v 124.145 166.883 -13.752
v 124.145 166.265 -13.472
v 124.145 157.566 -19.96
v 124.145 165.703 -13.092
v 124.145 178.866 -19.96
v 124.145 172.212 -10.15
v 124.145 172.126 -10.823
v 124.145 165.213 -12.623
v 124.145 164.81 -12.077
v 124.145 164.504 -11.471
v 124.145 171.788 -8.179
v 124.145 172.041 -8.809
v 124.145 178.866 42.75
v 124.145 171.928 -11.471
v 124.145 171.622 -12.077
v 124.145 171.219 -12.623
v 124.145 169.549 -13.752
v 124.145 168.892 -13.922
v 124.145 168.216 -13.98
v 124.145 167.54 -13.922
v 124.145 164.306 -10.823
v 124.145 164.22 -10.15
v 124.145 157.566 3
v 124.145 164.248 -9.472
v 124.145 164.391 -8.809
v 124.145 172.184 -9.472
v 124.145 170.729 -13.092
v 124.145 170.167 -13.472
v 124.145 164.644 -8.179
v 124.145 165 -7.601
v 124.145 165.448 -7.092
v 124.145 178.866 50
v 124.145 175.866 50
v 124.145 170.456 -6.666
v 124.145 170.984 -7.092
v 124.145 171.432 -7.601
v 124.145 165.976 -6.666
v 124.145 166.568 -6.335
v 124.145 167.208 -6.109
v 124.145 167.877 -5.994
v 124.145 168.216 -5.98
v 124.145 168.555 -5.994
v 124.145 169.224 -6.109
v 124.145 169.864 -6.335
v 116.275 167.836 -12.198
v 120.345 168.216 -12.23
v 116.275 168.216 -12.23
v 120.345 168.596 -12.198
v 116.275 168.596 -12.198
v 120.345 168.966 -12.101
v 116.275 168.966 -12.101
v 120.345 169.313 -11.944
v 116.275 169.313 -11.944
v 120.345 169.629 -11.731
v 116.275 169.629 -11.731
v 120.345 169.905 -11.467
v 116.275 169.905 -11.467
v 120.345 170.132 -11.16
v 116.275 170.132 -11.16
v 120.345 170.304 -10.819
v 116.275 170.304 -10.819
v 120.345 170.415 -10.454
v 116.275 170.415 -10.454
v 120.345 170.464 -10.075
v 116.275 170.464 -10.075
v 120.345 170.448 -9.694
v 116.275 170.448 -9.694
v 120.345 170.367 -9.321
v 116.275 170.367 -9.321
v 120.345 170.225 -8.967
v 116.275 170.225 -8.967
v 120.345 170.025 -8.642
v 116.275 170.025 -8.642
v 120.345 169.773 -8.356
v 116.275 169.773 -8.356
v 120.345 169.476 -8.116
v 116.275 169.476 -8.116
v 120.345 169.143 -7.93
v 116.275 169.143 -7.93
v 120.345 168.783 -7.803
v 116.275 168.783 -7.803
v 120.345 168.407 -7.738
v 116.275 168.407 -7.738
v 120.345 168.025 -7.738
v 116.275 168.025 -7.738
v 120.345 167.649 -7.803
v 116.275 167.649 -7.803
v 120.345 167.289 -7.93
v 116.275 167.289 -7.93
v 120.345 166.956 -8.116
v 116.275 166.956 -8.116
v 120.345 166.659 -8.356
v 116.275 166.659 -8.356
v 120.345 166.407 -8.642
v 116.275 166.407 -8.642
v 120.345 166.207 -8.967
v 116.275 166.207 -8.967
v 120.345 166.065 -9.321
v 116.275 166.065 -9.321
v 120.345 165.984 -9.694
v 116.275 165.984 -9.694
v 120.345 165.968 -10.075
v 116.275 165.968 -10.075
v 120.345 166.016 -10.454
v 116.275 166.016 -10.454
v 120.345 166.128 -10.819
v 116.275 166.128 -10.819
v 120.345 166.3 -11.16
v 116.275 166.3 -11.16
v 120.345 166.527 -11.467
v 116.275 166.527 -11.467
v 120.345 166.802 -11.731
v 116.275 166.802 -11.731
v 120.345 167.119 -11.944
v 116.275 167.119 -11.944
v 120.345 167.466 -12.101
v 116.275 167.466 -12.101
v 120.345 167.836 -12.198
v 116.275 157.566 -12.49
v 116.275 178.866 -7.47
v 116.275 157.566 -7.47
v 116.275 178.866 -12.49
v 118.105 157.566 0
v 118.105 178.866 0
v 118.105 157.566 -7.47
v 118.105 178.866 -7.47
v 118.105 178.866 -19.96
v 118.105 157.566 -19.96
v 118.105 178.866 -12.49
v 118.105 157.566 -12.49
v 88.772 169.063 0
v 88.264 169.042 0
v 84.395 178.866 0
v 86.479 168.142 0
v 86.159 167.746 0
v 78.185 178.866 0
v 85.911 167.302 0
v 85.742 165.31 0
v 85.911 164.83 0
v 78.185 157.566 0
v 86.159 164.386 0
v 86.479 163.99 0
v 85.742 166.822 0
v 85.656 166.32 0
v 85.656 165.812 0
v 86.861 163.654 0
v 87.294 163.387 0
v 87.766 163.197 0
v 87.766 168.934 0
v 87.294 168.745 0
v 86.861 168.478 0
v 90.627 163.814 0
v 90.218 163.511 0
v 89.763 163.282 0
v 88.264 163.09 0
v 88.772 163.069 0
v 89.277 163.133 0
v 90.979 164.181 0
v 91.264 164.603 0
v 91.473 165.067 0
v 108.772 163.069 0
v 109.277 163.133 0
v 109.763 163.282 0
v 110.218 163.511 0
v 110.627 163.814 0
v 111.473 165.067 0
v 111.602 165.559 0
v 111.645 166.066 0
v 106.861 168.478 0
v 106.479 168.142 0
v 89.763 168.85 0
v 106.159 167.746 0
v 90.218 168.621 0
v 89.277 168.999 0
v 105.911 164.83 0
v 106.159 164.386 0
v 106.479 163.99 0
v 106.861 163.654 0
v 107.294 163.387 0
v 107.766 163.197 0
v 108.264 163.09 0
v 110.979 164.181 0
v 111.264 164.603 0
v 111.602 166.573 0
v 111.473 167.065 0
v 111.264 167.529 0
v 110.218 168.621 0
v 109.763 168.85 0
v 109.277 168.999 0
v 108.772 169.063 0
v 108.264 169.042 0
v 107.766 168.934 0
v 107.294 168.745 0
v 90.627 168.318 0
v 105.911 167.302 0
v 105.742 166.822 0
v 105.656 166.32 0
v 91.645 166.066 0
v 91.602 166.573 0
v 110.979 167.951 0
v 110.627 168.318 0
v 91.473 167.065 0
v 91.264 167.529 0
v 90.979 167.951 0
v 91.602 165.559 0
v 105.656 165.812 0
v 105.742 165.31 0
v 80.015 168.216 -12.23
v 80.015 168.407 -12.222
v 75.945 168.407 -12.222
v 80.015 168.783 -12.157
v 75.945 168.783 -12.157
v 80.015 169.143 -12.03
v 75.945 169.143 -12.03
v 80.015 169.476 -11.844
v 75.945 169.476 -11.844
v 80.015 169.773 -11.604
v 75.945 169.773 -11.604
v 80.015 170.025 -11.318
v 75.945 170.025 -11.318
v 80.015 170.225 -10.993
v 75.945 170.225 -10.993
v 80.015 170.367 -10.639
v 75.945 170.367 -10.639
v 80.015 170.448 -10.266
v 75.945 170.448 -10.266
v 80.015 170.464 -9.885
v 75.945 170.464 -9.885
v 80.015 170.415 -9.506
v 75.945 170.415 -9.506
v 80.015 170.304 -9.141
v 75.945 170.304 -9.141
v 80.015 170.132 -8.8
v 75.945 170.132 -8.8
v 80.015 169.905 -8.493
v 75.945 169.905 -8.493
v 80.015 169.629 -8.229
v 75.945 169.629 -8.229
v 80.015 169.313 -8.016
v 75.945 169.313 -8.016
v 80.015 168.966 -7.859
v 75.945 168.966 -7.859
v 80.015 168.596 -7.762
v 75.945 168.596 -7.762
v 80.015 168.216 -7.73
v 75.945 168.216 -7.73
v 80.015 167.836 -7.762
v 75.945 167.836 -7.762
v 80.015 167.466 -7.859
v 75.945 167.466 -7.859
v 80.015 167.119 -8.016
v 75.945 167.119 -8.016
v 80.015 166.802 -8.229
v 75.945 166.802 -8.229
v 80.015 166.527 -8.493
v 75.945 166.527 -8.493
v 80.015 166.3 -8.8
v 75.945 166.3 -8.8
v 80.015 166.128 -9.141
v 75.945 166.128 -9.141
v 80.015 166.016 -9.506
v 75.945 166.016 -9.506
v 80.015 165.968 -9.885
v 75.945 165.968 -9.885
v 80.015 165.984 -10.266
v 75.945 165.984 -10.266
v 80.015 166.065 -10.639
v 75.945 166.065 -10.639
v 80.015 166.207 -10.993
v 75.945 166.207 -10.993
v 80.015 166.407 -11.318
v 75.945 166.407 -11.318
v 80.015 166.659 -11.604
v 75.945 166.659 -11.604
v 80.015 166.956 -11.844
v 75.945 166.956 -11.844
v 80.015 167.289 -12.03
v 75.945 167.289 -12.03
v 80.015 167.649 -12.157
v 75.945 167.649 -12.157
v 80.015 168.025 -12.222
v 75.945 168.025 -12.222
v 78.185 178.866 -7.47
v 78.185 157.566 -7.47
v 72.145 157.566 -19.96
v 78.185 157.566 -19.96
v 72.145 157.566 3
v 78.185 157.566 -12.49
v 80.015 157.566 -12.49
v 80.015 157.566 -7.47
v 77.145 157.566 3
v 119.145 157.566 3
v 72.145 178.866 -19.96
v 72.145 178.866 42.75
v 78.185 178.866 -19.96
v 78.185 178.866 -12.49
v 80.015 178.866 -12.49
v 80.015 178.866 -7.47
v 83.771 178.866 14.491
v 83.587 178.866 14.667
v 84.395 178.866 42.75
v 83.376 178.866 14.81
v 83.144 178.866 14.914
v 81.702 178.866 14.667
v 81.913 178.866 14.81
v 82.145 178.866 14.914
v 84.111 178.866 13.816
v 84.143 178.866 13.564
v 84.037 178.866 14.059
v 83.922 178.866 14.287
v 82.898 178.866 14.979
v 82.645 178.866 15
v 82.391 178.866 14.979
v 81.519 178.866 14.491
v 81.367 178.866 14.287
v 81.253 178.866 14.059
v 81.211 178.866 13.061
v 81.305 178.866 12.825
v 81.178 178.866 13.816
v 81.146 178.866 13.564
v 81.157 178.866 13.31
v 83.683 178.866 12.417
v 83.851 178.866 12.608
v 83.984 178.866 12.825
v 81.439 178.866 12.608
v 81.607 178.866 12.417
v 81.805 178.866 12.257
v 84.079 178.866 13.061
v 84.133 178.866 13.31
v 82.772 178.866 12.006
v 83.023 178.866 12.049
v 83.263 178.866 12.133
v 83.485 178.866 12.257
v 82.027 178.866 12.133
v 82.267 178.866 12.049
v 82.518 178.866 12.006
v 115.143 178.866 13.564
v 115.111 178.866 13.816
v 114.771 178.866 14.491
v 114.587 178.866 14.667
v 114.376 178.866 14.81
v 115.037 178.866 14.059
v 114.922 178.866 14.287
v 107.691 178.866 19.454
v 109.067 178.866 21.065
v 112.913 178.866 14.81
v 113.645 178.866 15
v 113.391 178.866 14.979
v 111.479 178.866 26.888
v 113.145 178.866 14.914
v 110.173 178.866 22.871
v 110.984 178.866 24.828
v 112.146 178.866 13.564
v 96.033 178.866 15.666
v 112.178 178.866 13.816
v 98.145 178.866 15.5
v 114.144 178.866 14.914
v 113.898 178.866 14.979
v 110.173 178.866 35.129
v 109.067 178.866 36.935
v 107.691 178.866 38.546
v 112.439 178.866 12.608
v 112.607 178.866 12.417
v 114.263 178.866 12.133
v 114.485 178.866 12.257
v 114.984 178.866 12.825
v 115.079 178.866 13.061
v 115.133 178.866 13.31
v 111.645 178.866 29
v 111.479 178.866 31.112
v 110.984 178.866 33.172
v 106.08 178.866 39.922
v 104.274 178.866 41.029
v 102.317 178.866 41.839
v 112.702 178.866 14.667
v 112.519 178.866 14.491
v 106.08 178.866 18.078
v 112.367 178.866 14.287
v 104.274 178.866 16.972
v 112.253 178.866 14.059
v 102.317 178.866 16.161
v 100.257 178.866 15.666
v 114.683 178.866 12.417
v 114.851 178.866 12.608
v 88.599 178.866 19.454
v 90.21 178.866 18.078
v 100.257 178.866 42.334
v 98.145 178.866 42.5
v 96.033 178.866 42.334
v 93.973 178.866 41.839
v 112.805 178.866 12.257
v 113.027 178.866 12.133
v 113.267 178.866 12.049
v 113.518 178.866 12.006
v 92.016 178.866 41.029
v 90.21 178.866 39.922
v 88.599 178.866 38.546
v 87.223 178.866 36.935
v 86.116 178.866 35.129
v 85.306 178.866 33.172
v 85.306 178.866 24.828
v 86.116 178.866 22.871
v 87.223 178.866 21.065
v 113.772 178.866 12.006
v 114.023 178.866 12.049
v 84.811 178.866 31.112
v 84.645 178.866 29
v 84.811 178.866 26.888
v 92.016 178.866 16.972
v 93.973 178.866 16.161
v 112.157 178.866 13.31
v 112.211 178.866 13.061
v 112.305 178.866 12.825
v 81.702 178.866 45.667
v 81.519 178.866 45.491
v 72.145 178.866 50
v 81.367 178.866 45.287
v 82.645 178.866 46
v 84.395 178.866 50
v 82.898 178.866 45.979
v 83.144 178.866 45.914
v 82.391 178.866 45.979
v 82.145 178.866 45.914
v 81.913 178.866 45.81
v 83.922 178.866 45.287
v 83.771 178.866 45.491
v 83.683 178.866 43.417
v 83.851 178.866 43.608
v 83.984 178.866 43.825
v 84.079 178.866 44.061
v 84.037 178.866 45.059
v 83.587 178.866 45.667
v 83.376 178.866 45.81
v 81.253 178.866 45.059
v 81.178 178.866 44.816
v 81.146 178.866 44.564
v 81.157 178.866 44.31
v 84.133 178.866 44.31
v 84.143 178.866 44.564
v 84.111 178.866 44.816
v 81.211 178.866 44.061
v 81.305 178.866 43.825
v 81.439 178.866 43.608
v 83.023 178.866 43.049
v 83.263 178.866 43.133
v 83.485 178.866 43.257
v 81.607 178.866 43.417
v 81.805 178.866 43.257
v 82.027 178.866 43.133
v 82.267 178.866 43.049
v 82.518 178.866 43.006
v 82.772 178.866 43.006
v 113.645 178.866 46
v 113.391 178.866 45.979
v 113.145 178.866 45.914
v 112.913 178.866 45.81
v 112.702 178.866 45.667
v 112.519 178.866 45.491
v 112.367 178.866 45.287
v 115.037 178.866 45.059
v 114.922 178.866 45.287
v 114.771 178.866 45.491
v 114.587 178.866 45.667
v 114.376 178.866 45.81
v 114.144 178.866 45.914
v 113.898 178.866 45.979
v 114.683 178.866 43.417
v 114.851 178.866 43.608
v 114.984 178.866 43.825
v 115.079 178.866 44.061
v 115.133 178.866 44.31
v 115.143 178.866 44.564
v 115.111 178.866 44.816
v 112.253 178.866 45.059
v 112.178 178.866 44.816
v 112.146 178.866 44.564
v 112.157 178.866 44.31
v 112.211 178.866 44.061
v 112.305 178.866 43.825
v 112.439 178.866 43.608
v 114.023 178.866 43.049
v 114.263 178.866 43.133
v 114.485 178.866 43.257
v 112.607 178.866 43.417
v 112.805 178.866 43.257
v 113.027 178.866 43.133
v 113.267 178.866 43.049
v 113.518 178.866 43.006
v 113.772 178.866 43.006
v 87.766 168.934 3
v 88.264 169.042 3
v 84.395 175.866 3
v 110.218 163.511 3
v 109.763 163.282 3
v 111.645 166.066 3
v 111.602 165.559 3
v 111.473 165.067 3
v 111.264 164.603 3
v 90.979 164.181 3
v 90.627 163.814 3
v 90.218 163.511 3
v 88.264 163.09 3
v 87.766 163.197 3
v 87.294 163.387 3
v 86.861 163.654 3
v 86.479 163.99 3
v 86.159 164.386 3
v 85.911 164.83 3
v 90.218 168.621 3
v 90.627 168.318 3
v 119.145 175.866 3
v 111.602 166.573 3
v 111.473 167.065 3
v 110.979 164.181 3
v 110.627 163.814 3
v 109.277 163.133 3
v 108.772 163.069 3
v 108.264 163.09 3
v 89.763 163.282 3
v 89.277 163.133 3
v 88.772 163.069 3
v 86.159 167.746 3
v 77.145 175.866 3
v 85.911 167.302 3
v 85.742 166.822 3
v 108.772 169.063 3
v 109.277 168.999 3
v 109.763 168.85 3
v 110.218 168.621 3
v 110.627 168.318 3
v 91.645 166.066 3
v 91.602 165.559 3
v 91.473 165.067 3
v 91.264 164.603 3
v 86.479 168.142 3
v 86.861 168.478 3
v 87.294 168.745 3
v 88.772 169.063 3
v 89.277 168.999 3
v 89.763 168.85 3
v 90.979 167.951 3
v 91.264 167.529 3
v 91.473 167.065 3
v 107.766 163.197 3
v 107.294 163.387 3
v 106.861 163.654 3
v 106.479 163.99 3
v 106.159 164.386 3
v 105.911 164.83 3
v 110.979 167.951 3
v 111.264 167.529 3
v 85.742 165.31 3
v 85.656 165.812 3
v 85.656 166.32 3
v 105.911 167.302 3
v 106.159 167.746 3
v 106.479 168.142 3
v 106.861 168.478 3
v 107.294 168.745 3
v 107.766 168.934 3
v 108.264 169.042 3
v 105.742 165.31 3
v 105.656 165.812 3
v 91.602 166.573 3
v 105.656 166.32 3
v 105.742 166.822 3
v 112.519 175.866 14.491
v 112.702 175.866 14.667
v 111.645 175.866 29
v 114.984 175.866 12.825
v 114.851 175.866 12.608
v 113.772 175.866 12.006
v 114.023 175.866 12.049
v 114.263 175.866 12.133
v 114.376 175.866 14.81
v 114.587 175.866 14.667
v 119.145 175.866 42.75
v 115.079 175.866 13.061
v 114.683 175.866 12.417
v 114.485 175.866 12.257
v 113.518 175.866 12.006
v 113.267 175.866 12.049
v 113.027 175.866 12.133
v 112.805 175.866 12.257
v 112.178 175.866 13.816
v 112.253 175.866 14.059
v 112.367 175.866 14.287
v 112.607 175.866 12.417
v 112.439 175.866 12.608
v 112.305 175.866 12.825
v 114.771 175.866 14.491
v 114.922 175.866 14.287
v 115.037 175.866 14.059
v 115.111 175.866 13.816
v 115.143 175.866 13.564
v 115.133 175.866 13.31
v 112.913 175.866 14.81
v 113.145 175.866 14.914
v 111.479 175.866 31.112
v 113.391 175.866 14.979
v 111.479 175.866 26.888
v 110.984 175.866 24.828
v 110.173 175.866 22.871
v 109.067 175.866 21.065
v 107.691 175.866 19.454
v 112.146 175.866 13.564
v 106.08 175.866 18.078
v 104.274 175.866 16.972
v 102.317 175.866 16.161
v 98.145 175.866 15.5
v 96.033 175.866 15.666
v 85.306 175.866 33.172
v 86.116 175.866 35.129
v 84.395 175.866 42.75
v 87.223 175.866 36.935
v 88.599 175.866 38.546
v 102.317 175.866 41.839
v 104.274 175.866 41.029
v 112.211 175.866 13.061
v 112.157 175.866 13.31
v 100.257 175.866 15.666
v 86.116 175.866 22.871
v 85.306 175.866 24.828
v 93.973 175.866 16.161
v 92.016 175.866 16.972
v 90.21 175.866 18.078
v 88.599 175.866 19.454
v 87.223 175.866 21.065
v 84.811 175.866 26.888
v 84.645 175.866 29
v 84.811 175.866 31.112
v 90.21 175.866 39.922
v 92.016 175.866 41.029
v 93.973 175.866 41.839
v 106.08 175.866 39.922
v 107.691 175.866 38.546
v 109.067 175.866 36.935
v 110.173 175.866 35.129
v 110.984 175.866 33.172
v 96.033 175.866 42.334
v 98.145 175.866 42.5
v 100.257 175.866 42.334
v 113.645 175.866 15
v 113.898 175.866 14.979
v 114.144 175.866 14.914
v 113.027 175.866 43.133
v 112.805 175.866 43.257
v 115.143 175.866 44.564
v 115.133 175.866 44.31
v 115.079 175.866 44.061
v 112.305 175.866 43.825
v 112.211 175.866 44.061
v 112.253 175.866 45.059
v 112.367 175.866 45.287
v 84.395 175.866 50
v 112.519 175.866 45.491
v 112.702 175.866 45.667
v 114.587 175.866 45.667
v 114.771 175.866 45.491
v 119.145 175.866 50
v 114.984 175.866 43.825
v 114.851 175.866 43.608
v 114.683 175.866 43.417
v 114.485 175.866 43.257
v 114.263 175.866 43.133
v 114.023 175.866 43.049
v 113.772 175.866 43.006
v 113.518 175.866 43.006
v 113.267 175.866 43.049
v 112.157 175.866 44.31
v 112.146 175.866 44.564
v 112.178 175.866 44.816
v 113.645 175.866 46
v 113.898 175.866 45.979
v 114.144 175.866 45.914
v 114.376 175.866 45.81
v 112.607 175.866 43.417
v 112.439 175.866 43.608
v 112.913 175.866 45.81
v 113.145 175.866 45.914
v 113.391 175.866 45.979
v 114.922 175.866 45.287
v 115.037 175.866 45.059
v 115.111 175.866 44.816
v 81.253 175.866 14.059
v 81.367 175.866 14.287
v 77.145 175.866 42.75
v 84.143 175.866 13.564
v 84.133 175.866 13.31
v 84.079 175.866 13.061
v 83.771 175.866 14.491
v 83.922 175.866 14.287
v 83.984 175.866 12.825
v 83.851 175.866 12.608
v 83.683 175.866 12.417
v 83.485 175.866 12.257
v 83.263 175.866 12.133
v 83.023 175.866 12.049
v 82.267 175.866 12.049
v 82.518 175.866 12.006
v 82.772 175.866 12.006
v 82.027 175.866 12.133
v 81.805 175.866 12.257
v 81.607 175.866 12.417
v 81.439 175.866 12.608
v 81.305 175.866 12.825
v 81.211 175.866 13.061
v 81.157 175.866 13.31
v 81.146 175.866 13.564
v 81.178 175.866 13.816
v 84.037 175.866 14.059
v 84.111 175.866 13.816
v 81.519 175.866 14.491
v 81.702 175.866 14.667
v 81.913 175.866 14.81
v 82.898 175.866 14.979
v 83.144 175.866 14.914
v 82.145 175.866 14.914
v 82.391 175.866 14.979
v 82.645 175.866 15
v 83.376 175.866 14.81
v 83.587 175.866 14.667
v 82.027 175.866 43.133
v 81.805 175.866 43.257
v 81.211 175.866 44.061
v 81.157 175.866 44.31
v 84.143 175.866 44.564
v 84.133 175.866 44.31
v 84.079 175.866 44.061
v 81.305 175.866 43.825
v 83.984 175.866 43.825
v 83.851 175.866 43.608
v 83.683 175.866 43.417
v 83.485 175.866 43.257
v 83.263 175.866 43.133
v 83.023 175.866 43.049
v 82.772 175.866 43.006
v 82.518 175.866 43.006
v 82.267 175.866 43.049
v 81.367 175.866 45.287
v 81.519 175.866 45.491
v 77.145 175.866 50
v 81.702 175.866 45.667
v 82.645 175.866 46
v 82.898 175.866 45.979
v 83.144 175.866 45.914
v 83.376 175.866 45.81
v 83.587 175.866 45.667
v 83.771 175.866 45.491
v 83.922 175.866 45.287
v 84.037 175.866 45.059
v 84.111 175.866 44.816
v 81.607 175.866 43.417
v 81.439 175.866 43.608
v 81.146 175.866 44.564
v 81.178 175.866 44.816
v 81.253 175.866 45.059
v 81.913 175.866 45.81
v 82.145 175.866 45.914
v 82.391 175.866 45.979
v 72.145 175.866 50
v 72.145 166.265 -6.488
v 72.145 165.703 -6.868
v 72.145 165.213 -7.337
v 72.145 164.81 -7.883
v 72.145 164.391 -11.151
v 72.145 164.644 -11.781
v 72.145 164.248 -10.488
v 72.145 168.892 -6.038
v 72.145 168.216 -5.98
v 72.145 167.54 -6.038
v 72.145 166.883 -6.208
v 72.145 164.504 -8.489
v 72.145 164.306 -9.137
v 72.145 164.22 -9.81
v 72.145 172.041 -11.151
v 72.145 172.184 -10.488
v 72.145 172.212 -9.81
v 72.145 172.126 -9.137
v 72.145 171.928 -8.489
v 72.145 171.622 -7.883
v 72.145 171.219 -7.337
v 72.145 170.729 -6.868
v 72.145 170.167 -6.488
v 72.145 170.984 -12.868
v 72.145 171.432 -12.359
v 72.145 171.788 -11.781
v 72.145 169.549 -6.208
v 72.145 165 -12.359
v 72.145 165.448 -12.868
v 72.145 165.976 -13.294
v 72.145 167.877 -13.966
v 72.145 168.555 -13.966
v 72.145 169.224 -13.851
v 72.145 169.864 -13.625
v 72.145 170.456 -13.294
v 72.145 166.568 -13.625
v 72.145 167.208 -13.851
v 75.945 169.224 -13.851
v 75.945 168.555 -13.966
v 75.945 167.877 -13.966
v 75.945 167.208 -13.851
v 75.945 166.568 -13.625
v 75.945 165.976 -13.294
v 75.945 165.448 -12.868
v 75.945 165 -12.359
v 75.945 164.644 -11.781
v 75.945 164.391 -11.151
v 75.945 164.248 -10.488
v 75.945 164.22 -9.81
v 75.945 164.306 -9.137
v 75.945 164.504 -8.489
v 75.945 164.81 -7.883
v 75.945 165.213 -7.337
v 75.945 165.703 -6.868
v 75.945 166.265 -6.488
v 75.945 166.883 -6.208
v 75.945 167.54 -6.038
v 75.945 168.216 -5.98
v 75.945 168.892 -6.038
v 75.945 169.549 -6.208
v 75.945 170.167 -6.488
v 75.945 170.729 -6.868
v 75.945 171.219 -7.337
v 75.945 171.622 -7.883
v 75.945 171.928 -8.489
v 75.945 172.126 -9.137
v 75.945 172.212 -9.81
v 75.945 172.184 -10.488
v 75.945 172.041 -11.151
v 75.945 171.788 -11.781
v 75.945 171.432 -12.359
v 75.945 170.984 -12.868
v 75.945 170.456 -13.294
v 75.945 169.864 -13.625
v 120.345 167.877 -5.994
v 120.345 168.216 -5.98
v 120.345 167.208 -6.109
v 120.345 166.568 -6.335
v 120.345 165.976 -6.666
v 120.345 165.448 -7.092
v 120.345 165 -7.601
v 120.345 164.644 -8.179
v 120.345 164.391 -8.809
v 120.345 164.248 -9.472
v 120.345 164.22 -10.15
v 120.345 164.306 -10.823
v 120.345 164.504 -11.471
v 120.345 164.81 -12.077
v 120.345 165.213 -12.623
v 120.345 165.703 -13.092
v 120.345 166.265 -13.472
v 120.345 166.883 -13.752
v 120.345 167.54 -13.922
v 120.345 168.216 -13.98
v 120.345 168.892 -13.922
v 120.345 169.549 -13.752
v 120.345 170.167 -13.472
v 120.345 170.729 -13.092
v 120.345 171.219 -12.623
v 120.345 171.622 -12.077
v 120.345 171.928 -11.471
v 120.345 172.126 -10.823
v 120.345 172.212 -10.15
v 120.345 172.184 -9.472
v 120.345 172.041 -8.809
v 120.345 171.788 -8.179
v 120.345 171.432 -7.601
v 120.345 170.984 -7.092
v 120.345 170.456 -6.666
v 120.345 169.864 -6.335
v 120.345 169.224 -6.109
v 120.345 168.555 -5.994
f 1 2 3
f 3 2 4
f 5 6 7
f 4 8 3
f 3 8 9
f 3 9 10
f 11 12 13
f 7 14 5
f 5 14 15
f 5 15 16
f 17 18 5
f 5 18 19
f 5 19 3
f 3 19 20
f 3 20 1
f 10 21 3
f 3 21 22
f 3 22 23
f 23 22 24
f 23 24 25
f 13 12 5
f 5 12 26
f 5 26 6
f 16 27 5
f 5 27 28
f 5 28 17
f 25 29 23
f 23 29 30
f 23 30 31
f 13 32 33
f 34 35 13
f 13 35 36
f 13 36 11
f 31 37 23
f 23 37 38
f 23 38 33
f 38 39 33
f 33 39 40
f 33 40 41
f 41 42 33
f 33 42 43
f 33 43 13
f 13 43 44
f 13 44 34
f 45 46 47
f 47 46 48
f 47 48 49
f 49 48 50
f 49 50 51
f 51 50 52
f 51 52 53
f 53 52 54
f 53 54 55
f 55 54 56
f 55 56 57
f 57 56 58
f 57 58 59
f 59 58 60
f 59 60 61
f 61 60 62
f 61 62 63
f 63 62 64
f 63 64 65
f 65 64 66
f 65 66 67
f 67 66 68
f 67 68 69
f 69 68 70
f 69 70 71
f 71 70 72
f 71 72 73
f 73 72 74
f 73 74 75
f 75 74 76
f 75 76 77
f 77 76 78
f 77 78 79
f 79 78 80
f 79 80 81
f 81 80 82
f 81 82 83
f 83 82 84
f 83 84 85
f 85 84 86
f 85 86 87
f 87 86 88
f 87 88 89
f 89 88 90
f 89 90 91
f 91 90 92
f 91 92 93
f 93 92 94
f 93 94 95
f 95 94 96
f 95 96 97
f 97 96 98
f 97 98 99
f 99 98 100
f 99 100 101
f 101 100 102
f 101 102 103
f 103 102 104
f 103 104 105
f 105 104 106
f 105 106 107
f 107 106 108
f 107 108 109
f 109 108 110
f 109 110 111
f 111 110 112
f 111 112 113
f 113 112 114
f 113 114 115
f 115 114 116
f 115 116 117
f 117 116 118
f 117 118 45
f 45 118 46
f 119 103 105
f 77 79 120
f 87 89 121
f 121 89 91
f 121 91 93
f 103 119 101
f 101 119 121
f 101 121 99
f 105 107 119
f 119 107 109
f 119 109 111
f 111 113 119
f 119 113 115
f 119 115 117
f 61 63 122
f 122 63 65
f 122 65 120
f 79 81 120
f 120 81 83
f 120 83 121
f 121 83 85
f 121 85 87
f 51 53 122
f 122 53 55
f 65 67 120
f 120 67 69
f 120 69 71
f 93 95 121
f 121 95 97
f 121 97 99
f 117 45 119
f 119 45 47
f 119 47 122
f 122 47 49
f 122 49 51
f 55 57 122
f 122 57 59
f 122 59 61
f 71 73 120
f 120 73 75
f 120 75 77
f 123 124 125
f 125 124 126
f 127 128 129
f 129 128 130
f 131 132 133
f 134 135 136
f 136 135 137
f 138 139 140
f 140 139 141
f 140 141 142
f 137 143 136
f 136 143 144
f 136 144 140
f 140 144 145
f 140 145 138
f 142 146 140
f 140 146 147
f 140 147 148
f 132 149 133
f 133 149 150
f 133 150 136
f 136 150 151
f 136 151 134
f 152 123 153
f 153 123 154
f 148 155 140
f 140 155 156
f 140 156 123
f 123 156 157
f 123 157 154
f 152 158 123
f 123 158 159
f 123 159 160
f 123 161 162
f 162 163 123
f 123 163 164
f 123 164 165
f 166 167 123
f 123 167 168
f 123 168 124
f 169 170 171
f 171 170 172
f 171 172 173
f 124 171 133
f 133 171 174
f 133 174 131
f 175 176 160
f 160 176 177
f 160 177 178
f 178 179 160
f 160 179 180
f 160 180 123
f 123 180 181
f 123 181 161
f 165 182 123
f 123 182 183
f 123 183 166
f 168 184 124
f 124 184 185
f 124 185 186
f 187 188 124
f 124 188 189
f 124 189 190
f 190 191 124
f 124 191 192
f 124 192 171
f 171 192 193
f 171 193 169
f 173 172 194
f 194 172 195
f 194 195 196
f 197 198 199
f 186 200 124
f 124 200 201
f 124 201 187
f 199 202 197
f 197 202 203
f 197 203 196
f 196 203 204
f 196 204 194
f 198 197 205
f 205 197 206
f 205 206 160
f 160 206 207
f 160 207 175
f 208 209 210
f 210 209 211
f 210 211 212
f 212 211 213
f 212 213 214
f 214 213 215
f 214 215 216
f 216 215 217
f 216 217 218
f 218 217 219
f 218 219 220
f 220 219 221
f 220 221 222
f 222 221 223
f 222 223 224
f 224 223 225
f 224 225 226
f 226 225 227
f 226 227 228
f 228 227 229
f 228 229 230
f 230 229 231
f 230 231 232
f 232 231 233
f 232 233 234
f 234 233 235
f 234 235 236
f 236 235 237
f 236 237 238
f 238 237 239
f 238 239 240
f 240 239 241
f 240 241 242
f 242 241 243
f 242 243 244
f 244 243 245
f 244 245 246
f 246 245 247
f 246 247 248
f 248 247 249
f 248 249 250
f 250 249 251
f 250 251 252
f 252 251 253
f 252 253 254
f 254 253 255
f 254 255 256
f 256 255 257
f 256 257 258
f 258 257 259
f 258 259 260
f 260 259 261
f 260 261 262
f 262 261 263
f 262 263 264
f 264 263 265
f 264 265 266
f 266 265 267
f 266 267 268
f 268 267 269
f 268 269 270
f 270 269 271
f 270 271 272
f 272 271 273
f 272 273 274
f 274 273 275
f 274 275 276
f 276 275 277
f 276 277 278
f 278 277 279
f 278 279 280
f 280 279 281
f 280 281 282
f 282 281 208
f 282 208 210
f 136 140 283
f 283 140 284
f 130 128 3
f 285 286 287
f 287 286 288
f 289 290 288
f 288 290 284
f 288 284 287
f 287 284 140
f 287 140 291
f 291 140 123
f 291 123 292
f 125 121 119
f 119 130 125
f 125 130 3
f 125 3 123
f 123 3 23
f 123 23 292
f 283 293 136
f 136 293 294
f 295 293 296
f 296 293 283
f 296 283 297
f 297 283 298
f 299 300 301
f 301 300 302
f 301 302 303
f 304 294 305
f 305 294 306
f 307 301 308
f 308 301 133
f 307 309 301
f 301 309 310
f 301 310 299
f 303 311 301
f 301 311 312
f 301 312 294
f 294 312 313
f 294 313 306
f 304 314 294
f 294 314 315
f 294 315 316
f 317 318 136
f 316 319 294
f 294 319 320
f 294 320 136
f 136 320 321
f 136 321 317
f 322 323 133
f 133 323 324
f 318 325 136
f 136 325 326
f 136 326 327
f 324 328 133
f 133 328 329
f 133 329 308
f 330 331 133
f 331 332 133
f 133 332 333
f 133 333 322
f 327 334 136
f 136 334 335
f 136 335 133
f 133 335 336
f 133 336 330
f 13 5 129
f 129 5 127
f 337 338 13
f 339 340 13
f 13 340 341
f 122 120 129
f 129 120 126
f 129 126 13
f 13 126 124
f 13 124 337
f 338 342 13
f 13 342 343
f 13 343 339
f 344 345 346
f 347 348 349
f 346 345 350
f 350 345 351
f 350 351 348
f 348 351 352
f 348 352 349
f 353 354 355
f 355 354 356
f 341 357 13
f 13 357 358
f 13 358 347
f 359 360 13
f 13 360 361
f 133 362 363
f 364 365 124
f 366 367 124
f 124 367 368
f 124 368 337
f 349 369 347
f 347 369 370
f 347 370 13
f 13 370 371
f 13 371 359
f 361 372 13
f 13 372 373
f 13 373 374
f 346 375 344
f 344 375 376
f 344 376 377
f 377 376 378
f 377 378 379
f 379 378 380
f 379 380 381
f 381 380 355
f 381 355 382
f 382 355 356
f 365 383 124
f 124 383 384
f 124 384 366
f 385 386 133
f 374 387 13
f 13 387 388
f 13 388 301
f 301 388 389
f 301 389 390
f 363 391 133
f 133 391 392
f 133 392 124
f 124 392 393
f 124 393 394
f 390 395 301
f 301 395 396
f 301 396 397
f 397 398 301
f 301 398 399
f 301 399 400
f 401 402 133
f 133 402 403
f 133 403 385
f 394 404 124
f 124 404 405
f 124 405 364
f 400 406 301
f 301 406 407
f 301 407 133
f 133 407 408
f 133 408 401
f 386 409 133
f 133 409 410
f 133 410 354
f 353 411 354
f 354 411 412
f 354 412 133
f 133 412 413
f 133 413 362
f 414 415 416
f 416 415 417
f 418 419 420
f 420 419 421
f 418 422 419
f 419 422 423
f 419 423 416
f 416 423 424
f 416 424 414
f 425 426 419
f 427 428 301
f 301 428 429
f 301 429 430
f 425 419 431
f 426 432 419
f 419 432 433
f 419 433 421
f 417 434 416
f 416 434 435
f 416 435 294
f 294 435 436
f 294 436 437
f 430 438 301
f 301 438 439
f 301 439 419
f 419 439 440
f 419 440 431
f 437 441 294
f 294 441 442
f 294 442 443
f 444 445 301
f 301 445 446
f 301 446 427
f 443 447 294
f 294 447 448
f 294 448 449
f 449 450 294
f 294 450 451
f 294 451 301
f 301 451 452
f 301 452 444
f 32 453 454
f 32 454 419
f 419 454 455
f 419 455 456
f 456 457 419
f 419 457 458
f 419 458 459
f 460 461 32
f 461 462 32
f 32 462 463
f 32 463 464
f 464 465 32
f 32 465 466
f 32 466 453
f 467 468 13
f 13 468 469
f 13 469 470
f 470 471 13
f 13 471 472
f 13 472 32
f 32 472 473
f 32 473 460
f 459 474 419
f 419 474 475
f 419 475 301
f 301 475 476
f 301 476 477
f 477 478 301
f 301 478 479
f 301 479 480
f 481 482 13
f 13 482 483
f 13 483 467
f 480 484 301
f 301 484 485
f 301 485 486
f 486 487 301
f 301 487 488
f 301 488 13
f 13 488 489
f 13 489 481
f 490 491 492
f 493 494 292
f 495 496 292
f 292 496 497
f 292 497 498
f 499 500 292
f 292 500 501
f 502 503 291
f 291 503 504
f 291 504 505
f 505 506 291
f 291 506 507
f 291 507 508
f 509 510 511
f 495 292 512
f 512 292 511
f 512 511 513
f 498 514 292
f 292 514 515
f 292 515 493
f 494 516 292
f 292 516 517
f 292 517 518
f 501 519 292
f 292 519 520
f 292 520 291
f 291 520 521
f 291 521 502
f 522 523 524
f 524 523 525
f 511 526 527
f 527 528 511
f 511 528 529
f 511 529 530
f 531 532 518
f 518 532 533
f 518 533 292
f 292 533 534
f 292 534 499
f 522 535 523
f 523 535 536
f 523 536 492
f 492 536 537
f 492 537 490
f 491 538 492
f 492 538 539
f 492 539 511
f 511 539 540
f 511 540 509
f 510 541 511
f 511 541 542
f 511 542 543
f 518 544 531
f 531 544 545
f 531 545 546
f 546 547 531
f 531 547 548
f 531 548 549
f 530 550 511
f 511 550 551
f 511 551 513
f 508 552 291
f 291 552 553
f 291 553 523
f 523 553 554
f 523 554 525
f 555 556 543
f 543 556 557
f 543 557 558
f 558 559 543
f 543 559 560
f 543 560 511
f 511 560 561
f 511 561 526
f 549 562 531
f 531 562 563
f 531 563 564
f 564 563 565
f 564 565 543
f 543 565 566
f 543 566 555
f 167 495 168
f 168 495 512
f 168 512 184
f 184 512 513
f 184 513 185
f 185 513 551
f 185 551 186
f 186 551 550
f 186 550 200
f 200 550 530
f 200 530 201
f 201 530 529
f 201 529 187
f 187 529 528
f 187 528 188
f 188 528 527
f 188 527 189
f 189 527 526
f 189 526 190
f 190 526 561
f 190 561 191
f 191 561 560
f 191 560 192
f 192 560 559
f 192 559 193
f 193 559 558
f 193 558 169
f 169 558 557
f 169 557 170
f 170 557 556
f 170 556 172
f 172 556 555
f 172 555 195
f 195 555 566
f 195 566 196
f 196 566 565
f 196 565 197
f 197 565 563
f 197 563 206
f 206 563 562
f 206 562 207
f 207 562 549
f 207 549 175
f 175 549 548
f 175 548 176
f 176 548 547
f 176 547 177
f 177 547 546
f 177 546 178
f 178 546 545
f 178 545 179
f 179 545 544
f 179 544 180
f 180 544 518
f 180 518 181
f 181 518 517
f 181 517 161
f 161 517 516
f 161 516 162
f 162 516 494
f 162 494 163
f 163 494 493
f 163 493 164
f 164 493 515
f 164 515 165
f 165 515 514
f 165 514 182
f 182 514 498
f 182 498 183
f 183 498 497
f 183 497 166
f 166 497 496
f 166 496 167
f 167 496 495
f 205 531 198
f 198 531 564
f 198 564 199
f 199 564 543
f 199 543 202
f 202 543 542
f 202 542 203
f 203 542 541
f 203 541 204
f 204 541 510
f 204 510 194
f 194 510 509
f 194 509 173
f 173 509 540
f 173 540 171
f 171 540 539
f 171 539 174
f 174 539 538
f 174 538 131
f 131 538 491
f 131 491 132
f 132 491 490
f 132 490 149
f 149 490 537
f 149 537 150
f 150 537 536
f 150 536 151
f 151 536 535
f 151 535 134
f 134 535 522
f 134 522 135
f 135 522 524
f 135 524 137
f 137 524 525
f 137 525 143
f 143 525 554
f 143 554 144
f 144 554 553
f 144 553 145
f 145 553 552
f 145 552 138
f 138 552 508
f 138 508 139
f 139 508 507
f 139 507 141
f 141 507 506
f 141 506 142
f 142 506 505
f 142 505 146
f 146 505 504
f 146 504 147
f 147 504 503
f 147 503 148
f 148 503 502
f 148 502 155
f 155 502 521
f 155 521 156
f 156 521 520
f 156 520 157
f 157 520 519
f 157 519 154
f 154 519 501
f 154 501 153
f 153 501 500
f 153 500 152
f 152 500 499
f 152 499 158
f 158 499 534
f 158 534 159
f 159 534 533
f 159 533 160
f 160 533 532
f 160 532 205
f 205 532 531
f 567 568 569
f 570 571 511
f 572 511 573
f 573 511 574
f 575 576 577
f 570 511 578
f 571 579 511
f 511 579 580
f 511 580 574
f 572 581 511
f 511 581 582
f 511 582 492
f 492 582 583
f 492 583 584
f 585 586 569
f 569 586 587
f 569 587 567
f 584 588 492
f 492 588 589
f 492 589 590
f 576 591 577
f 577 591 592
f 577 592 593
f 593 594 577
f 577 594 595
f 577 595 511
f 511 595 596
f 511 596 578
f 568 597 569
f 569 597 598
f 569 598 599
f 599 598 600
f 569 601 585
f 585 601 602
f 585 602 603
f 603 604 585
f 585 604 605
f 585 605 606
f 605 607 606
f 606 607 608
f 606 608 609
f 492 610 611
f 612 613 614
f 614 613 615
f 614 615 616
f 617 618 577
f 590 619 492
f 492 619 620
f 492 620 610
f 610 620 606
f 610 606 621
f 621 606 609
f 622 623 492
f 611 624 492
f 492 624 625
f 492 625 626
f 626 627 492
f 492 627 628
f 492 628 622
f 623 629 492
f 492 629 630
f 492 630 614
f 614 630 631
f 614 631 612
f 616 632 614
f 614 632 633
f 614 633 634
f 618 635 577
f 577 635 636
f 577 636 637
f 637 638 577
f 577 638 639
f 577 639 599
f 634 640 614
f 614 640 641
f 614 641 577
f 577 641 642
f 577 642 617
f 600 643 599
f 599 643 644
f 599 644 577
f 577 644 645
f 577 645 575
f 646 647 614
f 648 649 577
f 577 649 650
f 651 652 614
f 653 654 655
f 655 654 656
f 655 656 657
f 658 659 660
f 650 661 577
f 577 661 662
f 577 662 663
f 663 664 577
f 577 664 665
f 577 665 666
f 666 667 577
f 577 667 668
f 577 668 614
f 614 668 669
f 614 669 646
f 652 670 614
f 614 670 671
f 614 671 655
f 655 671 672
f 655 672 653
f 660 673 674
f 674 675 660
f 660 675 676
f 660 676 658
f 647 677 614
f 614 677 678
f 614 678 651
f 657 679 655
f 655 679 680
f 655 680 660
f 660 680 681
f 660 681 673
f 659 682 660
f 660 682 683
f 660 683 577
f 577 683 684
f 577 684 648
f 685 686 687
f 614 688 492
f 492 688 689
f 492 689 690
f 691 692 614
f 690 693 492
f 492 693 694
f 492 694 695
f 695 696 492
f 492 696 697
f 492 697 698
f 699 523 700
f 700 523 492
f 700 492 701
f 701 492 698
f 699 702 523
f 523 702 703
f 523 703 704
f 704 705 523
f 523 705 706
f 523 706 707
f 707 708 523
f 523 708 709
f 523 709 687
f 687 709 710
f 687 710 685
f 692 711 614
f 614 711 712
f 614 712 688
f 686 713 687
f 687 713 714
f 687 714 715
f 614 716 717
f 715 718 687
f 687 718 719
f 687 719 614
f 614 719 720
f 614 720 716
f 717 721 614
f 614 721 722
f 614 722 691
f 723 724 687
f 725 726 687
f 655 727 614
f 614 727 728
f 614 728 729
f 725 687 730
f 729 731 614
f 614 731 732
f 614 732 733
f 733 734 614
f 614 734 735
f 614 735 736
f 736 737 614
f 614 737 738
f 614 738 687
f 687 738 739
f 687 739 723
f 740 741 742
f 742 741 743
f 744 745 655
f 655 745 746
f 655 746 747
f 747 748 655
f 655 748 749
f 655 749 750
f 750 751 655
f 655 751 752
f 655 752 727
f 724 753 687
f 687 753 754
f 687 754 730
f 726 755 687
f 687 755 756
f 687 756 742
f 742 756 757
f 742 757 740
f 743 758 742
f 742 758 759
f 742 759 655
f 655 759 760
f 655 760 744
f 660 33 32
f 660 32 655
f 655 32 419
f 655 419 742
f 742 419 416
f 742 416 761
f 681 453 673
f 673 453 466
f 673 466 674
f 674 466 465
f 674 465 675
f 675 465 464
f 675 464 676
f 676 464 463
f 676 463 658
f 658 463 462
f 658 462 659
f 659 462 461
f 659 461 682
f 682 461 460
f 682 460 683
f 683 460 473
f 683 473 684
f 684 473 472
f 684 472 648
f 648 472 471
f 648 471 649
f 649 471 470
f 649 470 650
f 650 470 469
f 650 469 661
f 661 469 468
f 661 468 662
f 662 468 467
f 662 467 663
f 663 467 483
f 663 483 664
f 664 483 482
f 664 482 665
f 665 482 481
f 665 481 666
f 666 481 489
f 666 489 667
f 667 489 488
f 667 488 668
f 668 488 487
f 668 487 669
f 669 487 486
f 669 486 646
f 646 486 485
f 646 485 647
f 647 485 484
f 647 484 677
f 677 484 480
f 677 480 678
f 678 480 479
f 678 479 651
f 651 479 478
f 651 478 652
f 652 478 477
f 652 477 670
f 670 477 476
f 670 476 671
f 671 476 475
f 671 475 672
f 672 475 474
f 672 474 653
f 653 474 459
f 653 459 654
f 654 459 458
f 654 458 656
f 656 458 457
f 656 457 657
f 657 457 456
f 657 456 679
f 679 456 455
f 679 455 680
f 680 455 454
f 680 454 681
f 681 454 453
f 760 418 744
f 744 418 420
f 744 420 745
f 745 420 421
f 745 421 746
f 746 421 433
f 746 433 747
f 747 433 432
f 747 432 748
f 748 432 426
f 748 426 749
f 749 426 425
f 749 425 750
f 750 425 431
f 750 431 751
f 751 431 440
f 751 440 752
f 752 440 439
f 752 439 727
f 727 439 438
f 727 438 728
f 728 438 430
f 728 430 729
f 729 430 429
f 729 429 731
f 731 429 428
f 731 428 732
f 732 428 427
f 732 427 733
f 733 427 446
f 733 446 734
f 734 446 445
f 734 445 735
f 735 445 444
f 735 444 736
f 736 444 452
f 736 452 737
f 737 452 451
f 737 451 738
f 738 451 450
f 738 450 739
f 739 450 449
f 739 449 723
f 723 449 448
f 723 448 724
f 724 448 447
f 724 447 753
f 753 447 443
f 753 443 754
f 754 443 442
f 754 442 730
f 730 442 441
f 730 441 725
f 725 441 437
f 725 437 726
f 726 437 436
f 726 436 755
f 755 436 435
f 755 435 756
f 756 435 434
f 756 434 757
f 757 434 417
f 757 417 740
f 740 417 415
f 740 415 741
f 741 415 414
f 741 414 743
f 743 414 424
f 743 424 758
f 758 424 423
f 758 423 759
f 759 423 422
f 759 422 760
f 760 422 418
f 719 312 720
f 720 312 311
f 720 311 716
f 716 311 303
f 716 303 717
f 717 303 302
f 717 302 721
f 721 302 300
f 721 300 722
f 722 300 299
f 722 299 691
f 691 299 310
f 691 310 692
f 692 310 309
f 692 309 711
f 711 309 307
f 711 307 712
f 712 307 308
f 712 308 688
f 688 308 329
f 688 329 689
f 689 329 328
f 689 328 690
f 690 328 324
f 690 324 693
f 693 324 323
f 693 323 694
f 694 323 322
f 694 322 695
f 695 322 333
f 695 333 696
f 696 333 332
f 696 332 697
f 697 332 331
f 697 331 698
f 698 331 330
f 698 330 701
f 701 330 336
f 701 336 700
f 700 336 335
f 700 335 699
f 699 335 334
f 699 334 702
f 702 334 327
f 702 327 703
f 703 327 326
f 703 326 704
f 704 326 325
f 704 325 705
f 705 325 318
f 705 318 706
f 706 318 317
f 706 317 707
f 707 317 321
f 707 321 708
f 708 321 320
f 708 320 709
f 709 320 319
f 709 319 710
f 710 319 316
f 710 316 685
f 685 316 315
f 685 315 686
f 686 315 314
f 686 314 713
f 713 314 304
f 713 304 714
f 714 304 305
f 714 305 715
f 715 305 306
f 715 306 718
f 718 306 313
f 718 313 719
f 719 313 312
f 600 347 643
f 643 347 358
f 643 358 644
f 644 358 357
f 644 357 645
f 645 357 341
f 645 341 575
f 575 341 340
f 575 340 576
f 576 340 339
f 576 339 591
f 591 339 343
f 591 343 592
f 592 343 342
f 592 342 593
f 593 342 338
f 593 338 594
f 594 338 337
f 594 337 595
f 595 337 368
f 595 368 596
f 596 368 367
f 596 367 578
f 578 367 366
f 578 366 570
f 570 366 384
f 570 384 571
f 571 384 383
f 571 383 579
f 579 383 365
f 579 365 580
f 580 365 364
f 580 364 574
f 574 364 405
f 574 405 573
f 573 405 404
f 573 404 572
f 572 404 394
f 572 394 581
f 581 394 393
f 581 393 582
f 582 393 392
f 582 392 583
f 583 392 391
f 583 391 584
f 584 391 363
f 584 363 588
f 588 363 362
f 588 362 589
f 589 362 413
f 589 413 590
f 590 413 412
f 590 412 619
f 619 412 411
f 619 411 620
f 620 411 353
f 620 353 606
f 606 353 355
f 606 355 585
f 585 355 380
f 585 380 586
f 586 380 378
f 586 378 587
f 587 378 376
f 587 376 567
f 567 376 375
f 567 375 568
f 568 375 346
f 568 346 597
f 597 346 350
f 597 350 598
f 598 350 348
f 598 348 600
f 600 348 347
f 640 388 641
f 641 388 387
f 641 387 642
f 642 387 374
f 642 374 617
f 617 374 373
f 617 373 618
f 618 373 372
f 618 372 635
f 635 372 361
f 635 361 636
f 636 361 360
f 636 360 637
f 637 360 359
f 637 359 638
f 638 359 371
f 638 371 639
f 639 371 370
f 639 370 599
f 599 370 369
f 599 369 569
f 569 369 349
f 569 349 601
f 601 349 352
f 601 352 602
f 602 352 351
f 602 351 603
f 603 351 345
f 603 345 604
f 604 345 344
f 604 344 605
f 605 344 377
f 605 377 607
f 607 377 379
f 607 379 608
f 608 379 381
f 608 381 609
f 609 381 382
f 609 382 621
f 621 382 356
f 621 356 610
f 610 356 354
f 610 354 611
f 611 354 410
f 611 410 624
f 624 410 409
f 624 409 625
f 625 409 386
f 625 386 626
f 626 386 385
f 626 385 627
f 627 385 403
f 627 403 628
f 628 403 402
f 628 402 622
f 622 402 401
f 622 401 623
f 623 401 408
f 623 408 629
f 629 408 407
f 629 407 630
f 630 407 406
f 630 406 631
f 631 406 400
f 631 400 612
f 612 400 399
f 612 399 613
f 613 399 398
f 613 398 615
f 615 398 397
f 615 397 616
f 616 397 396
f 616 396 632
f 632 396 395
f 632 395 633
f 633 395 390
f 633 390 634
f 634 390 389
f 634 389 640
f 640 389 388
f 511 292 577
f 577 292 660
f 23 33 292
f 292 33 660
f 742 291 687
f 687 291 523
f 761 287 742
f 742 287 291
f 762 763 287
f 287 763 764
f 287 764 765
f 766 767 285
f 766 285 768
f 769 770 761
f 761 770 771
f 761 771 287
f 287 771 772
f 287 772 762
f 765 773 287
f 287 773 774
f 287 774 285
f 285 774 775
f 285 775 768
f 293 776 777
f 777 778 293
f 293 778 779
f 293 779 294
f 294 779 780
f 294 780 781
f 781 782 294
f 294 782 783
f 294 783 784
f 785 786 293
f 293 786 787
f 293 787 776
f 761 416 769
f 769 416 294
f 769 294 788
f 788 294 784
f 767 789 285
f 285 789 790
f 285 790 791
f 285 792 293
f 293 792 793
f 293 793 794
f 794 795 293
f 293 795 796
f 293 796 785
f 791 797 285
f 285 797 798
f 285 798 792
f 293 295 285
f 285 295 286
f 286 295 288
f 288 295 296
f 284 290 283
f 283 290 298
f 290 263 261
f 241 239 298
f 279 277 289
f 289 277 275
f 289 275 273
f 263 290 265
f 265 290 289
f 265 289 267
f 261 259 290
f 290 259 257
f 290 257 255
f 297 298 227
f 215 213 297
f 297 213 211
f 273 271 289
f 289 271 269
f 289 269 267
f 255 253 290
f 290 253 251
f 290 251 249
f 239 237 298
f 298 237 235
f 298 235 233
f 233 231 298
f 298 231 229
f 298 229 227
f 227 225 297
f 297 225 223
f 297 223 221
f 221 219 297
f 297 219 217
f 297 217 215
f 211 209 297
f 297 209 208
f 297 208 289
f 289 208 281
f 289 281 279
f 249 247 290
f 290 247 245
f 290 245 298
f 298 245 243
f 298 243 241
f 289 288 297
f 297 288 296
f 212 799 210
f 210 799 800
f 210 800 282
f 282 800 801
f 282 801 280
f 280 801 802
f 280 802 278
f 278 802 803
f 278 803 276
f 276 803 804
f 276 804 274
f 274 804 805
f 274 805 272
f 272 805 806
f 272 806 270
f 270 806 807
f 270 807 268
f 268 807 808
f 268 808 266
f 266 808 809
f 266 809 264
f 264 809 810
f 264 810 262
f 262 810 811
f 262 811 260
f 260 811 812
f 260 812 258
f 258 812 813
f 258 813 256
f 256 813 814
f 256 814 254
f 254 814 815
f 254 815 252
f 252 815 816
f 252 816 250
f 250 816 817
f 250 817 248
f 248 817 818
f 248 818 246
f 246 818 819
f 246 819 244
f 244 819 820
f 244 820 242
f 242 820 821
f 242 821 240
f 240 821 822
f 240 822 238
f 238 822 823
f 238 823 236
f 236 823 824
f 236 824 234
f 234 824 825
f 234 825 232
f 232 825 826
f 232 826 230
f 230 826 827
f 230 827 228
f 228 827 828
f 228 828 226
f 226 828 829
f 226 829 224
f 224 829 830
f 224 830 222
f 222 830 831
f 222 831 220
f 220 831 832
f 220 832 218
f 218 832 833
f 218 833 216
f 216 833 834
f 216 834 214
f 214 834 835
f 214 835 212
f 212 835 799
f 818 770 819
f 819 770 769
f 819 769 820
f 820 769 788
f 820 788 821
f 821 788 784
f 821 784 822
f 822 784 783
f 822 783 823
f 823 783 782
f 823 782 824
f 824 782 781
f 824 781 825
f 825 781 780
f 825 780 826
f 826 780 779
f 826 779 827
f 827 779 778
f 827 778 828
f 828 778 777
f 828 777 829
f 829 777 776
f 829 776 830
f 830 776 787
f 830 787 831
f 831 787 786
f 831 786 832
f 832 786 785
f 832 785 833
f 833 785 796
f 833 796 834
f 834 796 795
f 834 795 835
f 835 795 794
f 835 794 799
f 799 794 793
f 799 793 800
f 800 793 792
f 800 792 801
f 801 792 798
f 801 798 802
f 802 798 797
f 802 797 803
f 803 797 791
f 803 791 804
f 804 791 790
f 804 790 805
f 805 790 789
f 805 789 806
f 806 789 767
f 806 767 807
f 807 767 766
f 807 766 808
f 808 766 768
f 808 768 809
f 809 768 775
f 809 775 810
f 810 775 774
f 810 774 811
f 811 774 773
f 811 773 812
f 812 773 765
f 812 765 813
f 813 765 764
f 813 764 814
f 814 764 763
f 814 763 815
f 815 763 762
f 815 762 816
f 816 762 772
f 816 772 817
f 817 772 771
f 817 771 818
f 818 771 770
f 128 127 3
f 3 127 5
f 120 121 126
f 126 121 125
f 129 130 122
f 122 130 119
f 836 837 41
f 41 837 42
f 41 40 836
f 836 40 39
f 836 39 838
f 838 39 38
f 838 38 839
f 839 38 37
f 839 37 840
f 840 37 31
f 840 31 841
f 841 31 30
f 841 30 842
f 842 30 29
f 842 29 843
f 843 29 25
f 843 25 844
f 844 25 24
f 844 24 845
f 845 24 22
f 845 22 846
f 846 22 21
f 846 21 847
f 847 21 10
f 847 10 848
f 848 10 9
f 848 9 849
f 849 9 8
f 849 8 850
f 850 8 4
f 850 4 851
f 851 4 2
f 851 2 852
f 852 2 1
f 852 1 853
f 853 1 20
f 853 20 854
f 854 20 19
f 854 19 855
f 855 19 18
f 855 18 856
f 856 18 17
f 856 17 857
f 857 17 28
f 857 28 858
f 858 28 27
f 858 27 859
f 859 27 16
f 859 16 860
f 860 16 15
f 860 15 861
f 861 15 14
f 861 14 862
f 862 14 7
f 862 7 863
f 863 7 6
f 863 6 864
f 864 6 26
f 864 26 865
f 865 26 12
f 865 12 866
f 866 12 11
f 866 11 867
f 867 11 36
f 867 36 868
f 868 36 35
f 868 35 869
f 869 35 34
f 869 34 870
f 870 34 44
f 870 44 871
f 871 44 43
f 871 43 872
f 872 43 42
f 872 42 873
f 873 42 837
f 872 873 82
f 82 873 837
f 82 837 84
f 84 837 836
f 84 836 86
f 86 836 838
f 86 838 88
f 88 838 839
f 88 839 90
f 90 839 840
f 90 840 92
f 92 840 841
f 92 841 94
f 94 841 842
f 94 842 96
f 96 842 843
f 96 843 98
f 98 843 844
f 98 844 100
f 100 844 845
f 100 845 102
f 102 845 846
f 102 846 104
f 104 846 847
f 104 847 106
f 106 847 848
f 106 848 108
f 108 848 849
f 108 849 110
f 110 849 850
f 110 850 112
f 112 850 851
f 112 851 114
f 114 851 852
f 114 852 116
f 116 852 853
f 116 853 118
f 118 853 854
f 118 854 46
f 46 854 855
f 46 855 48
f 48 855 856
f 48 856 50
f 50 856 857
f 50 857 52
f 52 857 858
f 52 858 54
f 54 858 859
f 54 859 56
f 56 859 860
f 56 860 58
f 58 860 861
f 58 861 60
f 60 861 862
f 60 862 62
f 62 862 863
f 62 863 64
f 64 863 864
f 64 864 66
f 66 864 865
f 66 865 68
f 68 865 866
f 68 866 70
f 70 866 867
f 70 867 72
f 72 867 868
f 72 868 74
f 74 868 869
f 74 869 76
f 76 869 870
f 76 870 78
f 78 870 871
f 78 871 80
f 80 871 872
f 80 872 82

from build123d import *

# Parameters (mm, degrees)
SKETCH1_W           = 42
SKETCH1_H           = 21.3
BOSS_EXTRUDE1_DEPTH = 3
SKETCH2_R           = 3
CUT_EXTRUDE1_DEPTH  = 3
SKETCH4_W           = 42
SKETCH4_H           = 50
SKETCH4_R           = 1.5
SKETCH4_R_2         = 13.5
BOSS_EXTRUDE2_DEPTH = 3
BOSS_EXTRUDE3_DEPTH = 5
BOSS_EXTRUDE4_START = -42
BOSS_EXTRUDE4_DEPTH = 5
SKETCH6_W           = 6.04
SKETCH6_H           = 19.96
BOSS_EXTRUDE5_DEPTH = 21.3
SKETCH8_W           = 1.829995551
SKETCH8_H           = 5.02
BOSS_EXTRUDE6_DEPTH = 21.3
SKETCH7_R           = 2.25
CUT_EXTRUDE2_DEPTH  = 10
SKETCH9_R           = 4
CUT_EXTRUDE3_DEPTH  = 3.8


with BuildPart() as part:
    # Sketch1 → Boss-Extrude1 (new body)
    with BuildSketch(Plane.XY):
        with Locations((98.144783915, 168.215968794)):
            Rectangle(SKETCH1_W, SKETCH1_H)
    extrude(amount=BOSS_EXTRUDE1_DEPTH)

    # Sketch2 → Cut-Extrude1 (cut)
    with BuildSketch(Plane.XY.offset(3)):
        with Locations((108.644783915, 166.065968794)):
            Circle(SKETCH2_R)
        with Locations((88.644783915, 166.065968794)):
            Circle(SKETCH2_R)
    extrude(amount=-CUT_EXTRUDE1_DEPTH, mode=Mode.SUBTRACT)

    # Sketch4 → Boss-Extrude2 (add)
    with BuildSketch(Plane(origin=(0, 178.865968794, 0), x_dir=(-1, 0, 0), z_dir=(0, 1, 0))):
        with Locations((-98.144783915, 25)):
            Rectangle(SKETCH4_W, SKETCH4_H)
        with Locations((-113.644783915, 44.500179206)):
            Circle(SKETCH4_R, mode=Mode.SUBTRACT)
        with Locations((-82.644783915, 44.500179206)):
            Circle(SKETCH4_R, mode=Mode.SUBTRACT)
        with Locations((-82.644783915, 13.500179206)):
            Circle(SKETCH4_R, mode=Mode.SUBTRACT)
        with Locations((-113.644783915, 13.500179206)):
            Circle(SKETCH4_R, mode=Mode.SUBTRACT)
        with Locations((-98.144783915, 29.000179206)):
            Circle(SKETCH4_R_2, mode=Mode.SUBTRACT)
    extrude(amount=-BOSS_EXTRUDE2_DEPTH)

    # Sketch5 → Boss-Extrude3 (add)
    with BuildSketch(Plane(origin=(119.144783915, 0, 0), x_dir=(0, 0, -1), z_dir=(1, 0, 0))):
        Polygon((0, 157.565968794), (0, 178.865968794), (-50, 178.865968794), (-50, 175.865968794), (-3, 157.565968794), align=None)
    extrude(amount=BOSS_EXTRUDE3_DEPTH)

    # Sketch5<3> → Boss-Extrude4 (add)
    with BuildSketch(Plane(origin=(119.144783915, 0, 0), x_dir=(0, 0, -1), z_dir=(1, 0, 0)).offset(BOSS_EXTRUDE4_START)):
        Polygon((0, 157.565968794), (0, 178.865968794), (-50, 178.865968794), (-50, 175.865968794), (-3, 157.565968794), align=None)
    extrude(amount=-BOSS_EXTRUDE4_DEPTH)

    # Sketch6 → Boss-Extrude5 (add)
    with BuildSketch(Plane(origin=(0, 178.865968794, 0), x_dir=(1, 0, 0), z_dir=(0, 1, 0))):
        with Locations((75.164783915, 9.98)):
            Rectangle(SKETCH6_W, SKETCH6_H)
    boss_extrude5 = extrude(amount=-BOSS_EXTRUDE5_DEPTH)

    # Sketch8 → Boss-Extrude6 (add)
    with BuildSketch(Plane(origin=(0, 157.565968794, 0), x_dir=(-1, 0, 0), z_dir=(0, -1, 0))):
        with Locations((-79.099781691, 9.98)):
            Rectangle(SKETCH8_W, SKETCH8_H)
    boss_extrude6 = extrude(amount=-BOSS_EXTRUDE6_DEPTH)

    # Sketch7 → Cut-Extrude2 (cut)
    with BuildSketch(Plane.ZY.offset(-72.144783915)):
        with Locations((-9.98, 168.215968794)):
            Circle(SKETCH7_R)
    cut_extrude2 = extrude(amount=-CUT_EXTRUDE2_DEPTH, mode=Mode.SUBTRACT)

    # Sketch9 → Cut-Extrude3 (cut)
    with BuildSketch(Plane.ZY.offset(-72.144783915)):
        with Locations((-9.98, 168.215968794)):
            Circle(SKETCH9_R)
    cut_extrude3 = extrude(amount=-CUT_EXTRUDE3_DEPTH, mode=Mode.SUBTRACT)

    # Mirror1: Boss-Extrude5, Boss-Extrude6, Cut-Extrude2, Cut-Extrude3 across plane
    add(boss_extrude5.mirror(Plane.ZY.offset(-98.144783915)))
    add(boss_extrude6.mirror(Plane.ZY.offset(-98.144783915)))
    add(cut_extrude2.mirror(Plane.ZY.offset(-98.144783915)), mode=Mode.SUBTRACT)
    add(cut_extrude3.mirror(Plane.ZY.offset(-98.144783915)), mode=Mode.SUBTRACT)


solid = part.part
